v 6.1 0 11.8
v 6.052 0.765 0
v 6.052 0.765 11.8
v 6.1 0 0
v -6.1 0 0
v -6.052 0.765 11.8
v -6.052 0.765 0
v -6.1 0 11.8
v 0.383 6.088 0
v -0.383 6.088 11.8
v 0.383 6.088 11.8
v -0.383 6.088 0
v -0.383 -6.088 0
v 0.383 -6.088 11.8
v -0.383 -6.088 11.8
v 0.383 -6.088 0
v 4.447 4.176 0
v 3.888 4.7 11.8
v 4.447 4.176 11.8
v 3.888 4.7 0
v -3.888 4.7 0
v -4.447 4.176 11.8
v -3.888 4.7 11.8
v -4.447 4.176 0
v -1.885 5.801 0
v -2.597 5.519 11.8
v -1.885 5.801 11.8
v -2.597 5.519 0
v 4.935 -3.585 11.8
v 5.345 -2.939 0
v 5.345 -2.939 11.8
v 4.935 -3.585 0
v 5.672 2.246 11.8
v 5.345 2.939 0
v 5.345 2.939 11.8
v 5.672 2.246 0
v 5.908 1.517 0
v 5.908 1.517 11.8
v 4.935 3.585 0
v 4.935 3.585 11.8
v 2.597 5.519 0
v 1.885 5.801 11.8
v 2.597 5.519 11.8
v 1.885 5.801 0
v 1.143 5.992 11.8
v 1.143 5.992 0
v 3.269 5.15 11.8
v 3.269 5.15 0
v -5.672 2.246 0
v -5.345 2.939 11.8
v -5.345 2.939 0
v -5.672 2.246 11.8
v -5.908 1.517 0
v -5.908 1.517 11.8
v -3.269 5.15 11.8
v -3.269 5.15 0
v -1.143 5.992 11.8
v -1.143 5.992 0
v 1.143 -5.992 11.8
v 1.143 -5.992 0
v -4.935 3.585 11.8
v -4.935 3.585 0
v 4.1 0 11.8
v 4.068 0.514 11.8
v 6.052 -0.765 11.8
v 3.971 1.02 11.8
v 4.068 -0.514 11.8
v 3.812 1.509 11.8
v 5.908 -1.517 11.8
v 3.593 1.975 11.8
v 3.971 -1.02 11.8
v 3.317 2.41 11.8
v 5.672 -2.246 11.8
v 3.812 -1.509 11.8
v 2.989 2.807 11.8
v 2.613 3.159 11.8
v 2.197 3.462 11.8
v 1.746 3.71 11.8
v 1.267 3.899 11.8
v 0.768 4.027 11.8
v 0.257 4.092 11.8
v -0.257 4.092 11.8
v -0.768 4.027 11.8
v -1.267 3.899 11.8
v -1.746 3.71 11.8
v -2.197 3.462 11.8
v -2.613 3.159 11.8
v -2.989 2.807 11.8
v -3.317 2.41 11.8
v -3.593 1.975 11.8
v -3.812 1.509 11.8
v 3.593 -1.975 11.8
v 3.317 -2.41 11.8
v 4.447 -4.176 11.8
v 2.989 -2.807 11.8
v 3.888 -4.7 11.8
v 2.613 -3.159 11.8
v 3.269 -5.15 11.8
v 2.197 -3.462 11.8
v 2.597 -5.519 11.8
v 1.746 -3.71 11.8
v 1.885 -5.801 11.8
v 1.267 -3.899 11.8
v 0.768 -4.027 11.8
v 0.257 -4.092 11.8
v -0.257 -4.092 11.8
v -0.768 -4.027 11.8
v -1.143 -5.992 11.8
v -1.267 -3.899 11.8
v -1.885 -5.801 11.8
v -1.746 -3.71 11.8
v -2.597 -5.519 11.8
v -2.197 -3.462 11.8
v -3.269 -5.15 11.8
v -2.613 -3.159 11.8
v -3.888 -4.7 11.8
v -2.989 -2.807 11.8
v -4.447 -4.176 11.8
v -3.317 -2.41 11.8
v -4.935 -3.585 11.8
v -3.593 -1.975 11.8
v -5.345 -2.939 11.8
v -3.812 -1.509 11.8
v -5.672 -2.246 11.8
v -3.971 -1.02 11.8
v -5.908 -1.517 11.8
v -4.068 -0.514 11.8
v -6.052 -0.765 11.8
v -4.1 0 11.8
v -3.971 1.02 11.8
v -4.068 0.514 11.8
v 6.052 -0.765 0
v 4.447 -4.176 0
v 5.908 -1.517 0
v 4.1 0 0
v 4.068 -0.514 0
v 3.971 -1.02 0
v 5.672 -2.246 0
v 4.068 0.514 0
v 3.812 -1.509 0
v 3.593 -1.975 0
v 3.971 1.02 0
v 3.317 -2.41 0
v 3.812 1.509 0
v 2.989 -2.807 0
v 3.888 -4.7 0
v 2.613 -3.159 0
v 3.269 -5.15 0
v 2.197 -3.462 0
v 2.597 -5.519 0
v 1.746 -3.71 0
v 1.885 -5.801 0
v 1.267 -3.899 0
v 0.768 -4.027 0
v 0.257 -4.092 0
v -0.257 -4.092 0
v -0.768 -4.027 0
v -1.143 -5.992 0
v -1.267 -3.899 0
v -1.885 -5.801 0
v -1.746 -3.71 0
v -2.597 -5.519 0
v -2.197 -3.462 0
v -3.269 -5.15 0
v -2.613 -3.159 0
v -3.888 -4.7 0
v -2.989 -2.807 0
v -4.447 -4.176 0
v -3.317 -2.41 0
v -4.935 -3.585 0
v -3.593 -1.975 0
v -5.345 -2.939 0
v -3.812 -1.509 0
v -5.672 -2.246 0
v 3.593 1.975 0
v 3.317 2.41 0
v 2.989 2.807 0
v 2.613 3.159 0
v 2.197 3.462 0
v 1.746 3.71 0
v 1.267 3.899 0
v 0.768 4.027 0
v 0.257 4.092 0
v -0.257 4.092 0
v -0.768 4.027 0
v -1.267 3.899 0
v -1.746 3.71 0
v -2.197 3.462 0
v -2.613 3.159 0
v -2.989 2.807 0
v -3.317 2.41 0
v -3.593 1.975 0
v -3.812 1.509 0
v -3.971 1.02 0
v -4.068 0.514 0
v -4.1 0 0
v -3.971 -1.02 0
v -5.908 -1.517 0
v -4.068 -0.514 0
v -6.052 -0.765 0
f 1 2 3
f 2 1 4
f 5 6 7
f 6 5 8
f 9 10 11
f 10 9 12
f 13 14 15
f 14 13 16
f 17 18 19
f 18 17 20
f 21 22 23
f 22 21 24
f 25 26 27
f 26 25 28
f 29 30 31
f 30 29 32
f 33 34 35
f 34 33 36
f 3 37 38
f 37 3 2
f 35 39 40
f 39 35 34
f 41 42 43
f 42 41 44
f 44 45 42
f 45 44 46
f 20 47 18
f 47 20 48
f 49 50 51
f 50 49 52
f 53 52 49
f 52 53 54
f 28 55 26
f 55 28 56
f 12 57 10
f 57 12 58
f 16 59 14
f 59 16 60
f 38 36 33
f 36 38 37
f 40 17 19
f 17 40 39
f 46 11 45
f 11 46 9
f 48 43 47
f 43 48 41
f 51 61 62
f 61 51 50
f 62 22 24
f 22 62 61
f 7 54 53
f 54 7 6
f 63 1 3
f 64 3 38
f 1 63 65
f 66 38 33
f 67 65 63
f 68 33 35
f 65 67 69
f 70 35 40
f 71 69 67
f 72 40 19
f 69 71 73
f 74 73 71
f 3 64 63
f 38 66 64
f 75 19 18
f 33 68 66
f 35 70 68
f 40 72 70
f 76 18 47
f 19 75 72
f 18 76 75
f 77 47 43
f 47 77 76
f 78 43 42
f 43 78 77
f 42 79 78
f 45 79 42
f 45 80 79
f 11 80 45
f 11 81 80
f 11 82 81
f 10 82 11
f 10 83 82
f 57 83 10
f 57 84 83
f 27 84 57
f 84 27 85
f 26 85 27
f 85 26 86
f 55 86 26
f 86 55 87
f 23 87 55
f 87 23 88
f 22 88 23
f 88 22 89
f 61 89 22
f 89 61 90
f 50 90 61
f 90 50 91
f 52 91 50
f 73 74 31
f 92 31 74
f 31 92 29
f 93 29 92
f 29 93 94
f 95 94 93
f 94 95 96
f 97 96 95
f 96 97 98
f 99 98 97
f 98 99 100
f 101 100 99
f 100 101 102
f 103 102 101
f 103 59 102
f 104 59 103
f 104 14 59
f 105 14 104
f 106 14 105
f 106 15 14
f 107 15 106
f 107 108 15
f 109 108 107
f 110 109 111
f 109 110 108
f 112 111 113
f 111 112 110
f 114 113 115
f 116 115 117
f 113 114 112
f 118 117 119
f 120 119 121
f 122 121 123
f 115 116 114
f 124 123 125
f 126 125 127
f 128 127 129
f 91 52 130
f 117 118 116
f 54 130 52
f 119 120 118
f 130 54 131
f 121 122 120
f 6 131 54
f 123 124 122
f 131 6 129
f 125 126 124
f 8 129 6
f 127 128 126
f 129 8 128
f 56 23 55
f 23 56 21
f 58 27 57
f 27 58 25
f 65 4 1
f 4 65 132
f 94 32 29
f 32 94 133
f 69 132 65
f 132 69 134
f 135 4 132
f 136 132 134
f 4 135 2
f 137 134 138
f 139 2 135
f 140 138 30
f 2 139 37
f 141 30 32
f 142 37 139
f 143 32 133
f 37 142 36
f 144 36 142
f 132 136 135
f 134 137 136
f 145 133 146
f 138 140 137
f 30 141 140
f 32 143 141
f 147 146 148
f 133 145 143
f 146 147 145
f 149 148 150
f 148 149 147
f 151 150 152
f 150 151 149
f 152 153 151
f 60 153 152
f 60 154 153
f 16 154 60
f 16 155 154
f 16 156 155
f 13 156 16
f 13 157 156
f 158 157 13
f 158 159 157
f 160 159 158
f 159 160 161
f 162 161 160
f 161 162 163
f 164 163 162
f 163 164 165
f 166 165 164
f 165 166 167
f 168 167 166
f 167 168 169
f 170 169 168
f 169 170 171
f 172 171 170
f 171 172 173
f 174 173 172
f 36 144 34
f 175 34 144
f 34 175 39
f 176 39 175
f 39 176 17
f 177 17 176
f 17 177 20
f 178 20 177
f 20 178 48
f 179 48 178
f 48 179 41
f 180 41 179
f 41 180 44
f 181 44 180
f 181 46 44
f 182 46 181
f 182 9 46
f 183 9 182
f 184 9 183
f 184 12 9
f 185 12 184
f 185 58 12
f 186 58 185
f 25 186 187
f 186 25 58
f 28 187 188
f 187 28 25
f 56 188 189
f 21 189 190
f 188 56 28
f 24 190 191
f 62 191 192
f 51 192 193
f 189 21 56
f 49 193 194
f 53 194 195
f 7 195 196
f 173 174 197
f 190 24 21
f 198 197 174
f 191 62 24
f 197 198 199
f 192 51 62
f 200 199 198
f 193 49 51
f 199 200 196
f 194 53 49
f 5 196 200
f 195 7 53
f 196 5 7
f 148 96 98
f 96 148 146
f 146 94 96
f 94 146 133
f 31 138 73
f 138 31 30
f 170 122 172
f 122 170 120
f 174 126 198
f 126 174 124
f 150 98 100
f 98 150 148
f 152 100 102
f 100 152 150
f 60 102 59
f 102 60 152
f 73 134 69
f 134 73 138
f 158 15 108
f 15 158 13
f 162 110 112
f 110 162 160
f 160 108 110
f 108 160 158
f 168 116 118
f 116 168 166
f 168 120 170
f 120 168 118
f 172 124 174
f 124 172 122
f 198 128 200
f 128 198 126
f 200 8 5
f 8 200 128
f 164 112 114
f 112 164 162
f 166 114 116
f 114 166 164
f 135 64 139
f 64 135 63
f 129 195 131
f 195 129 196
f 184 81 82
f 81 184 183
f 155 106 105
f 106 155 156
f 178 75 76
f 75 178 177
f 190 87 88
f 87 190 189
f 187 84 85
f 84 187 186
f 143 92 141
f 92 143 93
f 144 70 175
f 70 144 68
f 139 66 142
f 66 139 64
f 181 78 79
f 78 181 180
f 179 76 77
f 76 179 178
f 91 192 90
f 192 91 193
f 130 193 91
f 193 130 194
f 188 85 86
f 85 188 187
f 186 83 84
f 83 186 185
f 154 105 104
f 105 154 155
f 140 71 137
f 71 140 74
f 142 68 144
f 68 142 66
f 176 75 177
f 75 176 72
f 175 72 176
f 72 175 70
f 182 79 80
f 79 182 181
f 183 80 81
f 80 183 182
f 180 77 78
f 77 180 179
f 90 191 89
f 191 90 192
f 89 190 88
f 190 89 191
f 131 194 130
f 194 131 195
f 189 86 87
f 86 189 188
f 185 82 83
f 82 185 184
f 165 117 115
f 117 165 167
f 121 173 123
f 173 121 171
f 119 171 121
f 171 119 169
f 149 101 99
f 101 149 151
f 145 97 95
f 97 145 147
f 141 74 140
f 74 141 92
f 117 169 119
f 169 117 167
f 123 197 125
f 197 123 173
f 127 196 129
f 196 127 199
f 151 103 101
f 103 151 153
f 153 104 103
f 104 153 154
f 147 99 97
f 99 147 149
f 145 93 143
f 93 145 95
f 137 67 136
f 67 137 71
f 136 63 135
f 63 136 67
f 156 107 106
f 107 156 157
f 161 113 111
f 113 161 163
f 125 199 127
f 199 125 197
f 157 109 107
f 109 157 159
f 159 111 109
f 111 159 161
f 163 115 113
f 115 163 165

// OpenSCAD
// file: ../parameters.scad
maximum_printable_size = 150;

layer_thickness = 0.3;
global_clearance = 0.5;


//Screw diameter and nut for M10 [mm]
M10_screw_diameter = 10.4;
M10_head_height = 10;
M10_head_diameter = 16+0.5;
M10_nut_height = 10.5;
M10_nut_diameter = 25.5;
M10_nut_pocket = 22.3;

//Screw diameter for M8 [mm]
M8_screw_diameter = 8.6;
M8_head_height = 8;
M8_head_diameter = 13.5;
M8_nut_height = 7.5;
M8_square_nut_thin_height = 4.5;
M8_nut_diameter = 14.4 + 0.5;
M8_nut_pocket = 13 + 0.5;
M8_washer_diameter = 16;
M8_washer_thickness = 1.5;


//Screw diameter and nut for M6 [mm]
M6_screw_diameter=6.5;
M6_head_diameter = 10+0.5;
M6_head_height = 6;
M6_nut_height = 4.9;
M6_nut_diameter = 11.8;
M6_nut_pocket = 10.4;
M6_square_nut_height = 3;
M6_square_nut_diameter = 10;
M6_washer_thickness = 1.6;

//Screw diameter and nut for M5 [mm]
M5_screw_diameter=5.5;
M5_head_height = 5;
M5_head_diameter = 13+0.5;
M5_nut_height = 4.5;
M5_nut_diameter = 9.4;
M5_nut_pocket = 8.4;

//Screw diameter and nut for M4 [mm]
M4_screw_diameter=4.5;
M4_screw_head_height = 4;
M4_nut_height = 3.2;
M4_nut_diameter = 8.4;
M4_nut_pocket = 7.5;

//Screw diameter and nut for M3 [mm]
M3_screw_diameter = 3.2;
M3_nut_height = 2.7;
M3_nut_diameter = 6.6;
M3_nut_pocket = 5.6;
M3_screw_head_height = 3;

//Screw diameter and nut for M2,5 [mm]
M2_5_screw_diameter = 2.7;
M2_5_nut_height = 2.3;
M2_5_nut_diameter = 6;
M2_5_nut_pocket = 5.5;

// kulove lozisko

bearing_efsm_08_h = 33+1;
bearing_efsm_08_m = 22;
bearing_efsm_08_db = 18;
bearing_efsm_08_ag = 10.5;
bearing_efsm_08_n = M4_screw_diameter;
bearing_efsm_08_a1 = 5.5;
bearing_efsm_08_d = 8.25;
bearing_efsm_08_B = 8; // ball height

bearing_efsm_10_h = 38+1;
bearing_efsm_10_m = 26;
bearing_efsm_10_db = 21.9;
bearing_efsm_10_ag = 12+0.2;
bearing_efsm_10_n = M5_screw_diameter;
bearing_efsm_10_a1 = 6.5;
bearing_efsm_10_d = 10.25;


bearing_efsm_12_width = 40+1;
bearing_efsm_12_h = bearing_efsm_12_width;
bearing_efsm_12_boltd = 28/2; // polovina vzdalenosti mezi srouby
bearing_efsm_12_m = bearing_efsm_12_boltd*2;
bearing_efsm_12_db = 25;
bearing_efsm_12_ag = 13;
bearing_efsm_12_a1 = 7;
bearing_efsm_12_n = M5_screw_diameter;
bearing_efsm_12_d = 12.15;
bearing_efsm_12_B = 10; // ball height
bearing_efsm_space = 1;

bearing_efsm_17_width = 54+1;
bearing_efsm_17_h = bearing_efsm_17_width;
bearing_efsm_17_boltd = 38/2; // polovina vzdalenosti mezi srouby
bearing_efsm_17_m = bearing_efsm_17_boltd*2;
bearing_efsm_17_db = 35;
bearing_efsm_17_ag = 18;
bearing_efsm_17_n = M6_screw_diameter;
bearing_efsm_17_a1 = 10;
bearing_efsm_17_B = 17; // ball height

//limcove lozisko
bearing_EFOM_10_L=26; //celkova sirka zakladny
bearing_EFOM_10_d1=10.3;//diametr otvoru real=10 mm
bearing_EFOM_10_dB=22;//diametr vystupku pro ulozeni lozika
bearing_EFOM_10_H=52;//celková delka zakladny
bearing_EFOM_10_J=36;// hole pitch
bearing_EFOM_10_A1=6.5;//vyska pouzdra
bearing_EFOM_10_Ag=12;//celkova vyska
bearing_EFOM_10_N1=5;//sirka otvoru pro sroub
bearing_EFOM_10_N2=8;//delka otvoru pro sroub
bearing_EFOM_10_m=36;//roztec der pro sroub
bearing_EFOM_10_h=9;//vyska lozika


608_bearing_outer_diameter = 22.3;
608_bearing_inner_diameter = 16;
608_bearing_thickness = 7.1;


// 20 KG servo parameters

servo_20kg_axis_offset = 9.375; // jak je osa mimo stredu
servo_20kg_body_x = 42;
servo_20kg_body_y = 21;
servo_20kg_body_z = 40;
servo_20kg_thread_x = 49/2;
servo_20kg_thread_y = 10/2;
servo_20kg_body_below = 10; // jak hluboko je tělo serva pod drzaky na srouby
servo_20kg_below = 25.8; // jak hluboko je páka serva pod drzaky na srouby

servo_20kg_bolt_d = 2.5+0.3;
servo_20kg_nut_d = 5+0.3;


//strain gauge
strain_gauge_width = 12.7;
strain_gauge_length = 75.1;
strain_gauge_screw_distance = 10;

//ALU profile
ALU_profile_width = 30.5;
ALU_profile_holder_wall_thickness = 3;
ALU_profile_groove_width = 8;

//pillow block bearing
//https://www.igus.eu/product/372
//Part no. KSTM-08
KSTM08_screws_distance = 33;         //m
KSTM08_screws_holes_diameter = 4.5;  //d2
KSTM08_flange_thickness = 6;         //h3
KSTM08_case_width = 9;               //C1
KSTM08_case_length = 47;             //a
KSTM08_ball_width = 12;              //B
KSTM08_ball_hole_diameter = 7.85;    //d1


//ložiska pro malý rotor
bearing_outer_diameter = 10.2;    // Rozměr B1 v nákresu s přídavkem na toleranci otvoru
bearing_thickness = 4;        // Rozměr B2 v nákresu
//bearing_shaft_length = 19.5;    // Rozměr B3 v nákresu, Originalni hodnota 19.5
bearing_shaft_length = 20;    // Rozměr B3 v nákresu


//parametry víčka s telemetrickou anténou
S01_sila_materialu=1.2;
S01_vyska_horni_zavit=10;
S01_hloubka_zavitu=4;
S01_prumer_vnitrni=50;
LO_spodni_prumer=17.2;
LO_vyska_bez_krytu=15;
S01_tolerance_zavit=1.5;
R01_vyska_prekryti_statoru=10;

g3_0_cone1 = 70;
g3_0_srcew_dist = 55;



// scale parameters
base_length = 500;
mid_base_width = 500;
mid_base_height = 200;
mid_base_length = 500;
mid_base_x_offset = 50;
base_mid_base_hinge_offset = 50;
tower_height = 185;
tower_angle = atan((mid_base_width/2-ALU_profile_width-10)/tower_height);
tower_arm_length = tower_height/cos(tower_angle);
tower_drag_z_offset = 22;
electro_box_length = 225;
electro_box_width = 165;
electro_box_height = 51.5;

// calibration device parameters
calibration_arm_x_offset = 140;
calibration_arm_y_offset = 50;
// main file
include <../parameters.scad>

module 888_5011() {
    difference() {
        cylinder(d=8+0.2+4, h=26-608_bearing_thickness*2, $fn=50);
        
        translate([0, 0, -ALU_profile_holder_wall_thickness])
        cylinder(d=8+0.2, h=ALU_profile_width+ALU_profile_holder_wall_thickness*4, $fn=50);
    }
}

888_5011();
